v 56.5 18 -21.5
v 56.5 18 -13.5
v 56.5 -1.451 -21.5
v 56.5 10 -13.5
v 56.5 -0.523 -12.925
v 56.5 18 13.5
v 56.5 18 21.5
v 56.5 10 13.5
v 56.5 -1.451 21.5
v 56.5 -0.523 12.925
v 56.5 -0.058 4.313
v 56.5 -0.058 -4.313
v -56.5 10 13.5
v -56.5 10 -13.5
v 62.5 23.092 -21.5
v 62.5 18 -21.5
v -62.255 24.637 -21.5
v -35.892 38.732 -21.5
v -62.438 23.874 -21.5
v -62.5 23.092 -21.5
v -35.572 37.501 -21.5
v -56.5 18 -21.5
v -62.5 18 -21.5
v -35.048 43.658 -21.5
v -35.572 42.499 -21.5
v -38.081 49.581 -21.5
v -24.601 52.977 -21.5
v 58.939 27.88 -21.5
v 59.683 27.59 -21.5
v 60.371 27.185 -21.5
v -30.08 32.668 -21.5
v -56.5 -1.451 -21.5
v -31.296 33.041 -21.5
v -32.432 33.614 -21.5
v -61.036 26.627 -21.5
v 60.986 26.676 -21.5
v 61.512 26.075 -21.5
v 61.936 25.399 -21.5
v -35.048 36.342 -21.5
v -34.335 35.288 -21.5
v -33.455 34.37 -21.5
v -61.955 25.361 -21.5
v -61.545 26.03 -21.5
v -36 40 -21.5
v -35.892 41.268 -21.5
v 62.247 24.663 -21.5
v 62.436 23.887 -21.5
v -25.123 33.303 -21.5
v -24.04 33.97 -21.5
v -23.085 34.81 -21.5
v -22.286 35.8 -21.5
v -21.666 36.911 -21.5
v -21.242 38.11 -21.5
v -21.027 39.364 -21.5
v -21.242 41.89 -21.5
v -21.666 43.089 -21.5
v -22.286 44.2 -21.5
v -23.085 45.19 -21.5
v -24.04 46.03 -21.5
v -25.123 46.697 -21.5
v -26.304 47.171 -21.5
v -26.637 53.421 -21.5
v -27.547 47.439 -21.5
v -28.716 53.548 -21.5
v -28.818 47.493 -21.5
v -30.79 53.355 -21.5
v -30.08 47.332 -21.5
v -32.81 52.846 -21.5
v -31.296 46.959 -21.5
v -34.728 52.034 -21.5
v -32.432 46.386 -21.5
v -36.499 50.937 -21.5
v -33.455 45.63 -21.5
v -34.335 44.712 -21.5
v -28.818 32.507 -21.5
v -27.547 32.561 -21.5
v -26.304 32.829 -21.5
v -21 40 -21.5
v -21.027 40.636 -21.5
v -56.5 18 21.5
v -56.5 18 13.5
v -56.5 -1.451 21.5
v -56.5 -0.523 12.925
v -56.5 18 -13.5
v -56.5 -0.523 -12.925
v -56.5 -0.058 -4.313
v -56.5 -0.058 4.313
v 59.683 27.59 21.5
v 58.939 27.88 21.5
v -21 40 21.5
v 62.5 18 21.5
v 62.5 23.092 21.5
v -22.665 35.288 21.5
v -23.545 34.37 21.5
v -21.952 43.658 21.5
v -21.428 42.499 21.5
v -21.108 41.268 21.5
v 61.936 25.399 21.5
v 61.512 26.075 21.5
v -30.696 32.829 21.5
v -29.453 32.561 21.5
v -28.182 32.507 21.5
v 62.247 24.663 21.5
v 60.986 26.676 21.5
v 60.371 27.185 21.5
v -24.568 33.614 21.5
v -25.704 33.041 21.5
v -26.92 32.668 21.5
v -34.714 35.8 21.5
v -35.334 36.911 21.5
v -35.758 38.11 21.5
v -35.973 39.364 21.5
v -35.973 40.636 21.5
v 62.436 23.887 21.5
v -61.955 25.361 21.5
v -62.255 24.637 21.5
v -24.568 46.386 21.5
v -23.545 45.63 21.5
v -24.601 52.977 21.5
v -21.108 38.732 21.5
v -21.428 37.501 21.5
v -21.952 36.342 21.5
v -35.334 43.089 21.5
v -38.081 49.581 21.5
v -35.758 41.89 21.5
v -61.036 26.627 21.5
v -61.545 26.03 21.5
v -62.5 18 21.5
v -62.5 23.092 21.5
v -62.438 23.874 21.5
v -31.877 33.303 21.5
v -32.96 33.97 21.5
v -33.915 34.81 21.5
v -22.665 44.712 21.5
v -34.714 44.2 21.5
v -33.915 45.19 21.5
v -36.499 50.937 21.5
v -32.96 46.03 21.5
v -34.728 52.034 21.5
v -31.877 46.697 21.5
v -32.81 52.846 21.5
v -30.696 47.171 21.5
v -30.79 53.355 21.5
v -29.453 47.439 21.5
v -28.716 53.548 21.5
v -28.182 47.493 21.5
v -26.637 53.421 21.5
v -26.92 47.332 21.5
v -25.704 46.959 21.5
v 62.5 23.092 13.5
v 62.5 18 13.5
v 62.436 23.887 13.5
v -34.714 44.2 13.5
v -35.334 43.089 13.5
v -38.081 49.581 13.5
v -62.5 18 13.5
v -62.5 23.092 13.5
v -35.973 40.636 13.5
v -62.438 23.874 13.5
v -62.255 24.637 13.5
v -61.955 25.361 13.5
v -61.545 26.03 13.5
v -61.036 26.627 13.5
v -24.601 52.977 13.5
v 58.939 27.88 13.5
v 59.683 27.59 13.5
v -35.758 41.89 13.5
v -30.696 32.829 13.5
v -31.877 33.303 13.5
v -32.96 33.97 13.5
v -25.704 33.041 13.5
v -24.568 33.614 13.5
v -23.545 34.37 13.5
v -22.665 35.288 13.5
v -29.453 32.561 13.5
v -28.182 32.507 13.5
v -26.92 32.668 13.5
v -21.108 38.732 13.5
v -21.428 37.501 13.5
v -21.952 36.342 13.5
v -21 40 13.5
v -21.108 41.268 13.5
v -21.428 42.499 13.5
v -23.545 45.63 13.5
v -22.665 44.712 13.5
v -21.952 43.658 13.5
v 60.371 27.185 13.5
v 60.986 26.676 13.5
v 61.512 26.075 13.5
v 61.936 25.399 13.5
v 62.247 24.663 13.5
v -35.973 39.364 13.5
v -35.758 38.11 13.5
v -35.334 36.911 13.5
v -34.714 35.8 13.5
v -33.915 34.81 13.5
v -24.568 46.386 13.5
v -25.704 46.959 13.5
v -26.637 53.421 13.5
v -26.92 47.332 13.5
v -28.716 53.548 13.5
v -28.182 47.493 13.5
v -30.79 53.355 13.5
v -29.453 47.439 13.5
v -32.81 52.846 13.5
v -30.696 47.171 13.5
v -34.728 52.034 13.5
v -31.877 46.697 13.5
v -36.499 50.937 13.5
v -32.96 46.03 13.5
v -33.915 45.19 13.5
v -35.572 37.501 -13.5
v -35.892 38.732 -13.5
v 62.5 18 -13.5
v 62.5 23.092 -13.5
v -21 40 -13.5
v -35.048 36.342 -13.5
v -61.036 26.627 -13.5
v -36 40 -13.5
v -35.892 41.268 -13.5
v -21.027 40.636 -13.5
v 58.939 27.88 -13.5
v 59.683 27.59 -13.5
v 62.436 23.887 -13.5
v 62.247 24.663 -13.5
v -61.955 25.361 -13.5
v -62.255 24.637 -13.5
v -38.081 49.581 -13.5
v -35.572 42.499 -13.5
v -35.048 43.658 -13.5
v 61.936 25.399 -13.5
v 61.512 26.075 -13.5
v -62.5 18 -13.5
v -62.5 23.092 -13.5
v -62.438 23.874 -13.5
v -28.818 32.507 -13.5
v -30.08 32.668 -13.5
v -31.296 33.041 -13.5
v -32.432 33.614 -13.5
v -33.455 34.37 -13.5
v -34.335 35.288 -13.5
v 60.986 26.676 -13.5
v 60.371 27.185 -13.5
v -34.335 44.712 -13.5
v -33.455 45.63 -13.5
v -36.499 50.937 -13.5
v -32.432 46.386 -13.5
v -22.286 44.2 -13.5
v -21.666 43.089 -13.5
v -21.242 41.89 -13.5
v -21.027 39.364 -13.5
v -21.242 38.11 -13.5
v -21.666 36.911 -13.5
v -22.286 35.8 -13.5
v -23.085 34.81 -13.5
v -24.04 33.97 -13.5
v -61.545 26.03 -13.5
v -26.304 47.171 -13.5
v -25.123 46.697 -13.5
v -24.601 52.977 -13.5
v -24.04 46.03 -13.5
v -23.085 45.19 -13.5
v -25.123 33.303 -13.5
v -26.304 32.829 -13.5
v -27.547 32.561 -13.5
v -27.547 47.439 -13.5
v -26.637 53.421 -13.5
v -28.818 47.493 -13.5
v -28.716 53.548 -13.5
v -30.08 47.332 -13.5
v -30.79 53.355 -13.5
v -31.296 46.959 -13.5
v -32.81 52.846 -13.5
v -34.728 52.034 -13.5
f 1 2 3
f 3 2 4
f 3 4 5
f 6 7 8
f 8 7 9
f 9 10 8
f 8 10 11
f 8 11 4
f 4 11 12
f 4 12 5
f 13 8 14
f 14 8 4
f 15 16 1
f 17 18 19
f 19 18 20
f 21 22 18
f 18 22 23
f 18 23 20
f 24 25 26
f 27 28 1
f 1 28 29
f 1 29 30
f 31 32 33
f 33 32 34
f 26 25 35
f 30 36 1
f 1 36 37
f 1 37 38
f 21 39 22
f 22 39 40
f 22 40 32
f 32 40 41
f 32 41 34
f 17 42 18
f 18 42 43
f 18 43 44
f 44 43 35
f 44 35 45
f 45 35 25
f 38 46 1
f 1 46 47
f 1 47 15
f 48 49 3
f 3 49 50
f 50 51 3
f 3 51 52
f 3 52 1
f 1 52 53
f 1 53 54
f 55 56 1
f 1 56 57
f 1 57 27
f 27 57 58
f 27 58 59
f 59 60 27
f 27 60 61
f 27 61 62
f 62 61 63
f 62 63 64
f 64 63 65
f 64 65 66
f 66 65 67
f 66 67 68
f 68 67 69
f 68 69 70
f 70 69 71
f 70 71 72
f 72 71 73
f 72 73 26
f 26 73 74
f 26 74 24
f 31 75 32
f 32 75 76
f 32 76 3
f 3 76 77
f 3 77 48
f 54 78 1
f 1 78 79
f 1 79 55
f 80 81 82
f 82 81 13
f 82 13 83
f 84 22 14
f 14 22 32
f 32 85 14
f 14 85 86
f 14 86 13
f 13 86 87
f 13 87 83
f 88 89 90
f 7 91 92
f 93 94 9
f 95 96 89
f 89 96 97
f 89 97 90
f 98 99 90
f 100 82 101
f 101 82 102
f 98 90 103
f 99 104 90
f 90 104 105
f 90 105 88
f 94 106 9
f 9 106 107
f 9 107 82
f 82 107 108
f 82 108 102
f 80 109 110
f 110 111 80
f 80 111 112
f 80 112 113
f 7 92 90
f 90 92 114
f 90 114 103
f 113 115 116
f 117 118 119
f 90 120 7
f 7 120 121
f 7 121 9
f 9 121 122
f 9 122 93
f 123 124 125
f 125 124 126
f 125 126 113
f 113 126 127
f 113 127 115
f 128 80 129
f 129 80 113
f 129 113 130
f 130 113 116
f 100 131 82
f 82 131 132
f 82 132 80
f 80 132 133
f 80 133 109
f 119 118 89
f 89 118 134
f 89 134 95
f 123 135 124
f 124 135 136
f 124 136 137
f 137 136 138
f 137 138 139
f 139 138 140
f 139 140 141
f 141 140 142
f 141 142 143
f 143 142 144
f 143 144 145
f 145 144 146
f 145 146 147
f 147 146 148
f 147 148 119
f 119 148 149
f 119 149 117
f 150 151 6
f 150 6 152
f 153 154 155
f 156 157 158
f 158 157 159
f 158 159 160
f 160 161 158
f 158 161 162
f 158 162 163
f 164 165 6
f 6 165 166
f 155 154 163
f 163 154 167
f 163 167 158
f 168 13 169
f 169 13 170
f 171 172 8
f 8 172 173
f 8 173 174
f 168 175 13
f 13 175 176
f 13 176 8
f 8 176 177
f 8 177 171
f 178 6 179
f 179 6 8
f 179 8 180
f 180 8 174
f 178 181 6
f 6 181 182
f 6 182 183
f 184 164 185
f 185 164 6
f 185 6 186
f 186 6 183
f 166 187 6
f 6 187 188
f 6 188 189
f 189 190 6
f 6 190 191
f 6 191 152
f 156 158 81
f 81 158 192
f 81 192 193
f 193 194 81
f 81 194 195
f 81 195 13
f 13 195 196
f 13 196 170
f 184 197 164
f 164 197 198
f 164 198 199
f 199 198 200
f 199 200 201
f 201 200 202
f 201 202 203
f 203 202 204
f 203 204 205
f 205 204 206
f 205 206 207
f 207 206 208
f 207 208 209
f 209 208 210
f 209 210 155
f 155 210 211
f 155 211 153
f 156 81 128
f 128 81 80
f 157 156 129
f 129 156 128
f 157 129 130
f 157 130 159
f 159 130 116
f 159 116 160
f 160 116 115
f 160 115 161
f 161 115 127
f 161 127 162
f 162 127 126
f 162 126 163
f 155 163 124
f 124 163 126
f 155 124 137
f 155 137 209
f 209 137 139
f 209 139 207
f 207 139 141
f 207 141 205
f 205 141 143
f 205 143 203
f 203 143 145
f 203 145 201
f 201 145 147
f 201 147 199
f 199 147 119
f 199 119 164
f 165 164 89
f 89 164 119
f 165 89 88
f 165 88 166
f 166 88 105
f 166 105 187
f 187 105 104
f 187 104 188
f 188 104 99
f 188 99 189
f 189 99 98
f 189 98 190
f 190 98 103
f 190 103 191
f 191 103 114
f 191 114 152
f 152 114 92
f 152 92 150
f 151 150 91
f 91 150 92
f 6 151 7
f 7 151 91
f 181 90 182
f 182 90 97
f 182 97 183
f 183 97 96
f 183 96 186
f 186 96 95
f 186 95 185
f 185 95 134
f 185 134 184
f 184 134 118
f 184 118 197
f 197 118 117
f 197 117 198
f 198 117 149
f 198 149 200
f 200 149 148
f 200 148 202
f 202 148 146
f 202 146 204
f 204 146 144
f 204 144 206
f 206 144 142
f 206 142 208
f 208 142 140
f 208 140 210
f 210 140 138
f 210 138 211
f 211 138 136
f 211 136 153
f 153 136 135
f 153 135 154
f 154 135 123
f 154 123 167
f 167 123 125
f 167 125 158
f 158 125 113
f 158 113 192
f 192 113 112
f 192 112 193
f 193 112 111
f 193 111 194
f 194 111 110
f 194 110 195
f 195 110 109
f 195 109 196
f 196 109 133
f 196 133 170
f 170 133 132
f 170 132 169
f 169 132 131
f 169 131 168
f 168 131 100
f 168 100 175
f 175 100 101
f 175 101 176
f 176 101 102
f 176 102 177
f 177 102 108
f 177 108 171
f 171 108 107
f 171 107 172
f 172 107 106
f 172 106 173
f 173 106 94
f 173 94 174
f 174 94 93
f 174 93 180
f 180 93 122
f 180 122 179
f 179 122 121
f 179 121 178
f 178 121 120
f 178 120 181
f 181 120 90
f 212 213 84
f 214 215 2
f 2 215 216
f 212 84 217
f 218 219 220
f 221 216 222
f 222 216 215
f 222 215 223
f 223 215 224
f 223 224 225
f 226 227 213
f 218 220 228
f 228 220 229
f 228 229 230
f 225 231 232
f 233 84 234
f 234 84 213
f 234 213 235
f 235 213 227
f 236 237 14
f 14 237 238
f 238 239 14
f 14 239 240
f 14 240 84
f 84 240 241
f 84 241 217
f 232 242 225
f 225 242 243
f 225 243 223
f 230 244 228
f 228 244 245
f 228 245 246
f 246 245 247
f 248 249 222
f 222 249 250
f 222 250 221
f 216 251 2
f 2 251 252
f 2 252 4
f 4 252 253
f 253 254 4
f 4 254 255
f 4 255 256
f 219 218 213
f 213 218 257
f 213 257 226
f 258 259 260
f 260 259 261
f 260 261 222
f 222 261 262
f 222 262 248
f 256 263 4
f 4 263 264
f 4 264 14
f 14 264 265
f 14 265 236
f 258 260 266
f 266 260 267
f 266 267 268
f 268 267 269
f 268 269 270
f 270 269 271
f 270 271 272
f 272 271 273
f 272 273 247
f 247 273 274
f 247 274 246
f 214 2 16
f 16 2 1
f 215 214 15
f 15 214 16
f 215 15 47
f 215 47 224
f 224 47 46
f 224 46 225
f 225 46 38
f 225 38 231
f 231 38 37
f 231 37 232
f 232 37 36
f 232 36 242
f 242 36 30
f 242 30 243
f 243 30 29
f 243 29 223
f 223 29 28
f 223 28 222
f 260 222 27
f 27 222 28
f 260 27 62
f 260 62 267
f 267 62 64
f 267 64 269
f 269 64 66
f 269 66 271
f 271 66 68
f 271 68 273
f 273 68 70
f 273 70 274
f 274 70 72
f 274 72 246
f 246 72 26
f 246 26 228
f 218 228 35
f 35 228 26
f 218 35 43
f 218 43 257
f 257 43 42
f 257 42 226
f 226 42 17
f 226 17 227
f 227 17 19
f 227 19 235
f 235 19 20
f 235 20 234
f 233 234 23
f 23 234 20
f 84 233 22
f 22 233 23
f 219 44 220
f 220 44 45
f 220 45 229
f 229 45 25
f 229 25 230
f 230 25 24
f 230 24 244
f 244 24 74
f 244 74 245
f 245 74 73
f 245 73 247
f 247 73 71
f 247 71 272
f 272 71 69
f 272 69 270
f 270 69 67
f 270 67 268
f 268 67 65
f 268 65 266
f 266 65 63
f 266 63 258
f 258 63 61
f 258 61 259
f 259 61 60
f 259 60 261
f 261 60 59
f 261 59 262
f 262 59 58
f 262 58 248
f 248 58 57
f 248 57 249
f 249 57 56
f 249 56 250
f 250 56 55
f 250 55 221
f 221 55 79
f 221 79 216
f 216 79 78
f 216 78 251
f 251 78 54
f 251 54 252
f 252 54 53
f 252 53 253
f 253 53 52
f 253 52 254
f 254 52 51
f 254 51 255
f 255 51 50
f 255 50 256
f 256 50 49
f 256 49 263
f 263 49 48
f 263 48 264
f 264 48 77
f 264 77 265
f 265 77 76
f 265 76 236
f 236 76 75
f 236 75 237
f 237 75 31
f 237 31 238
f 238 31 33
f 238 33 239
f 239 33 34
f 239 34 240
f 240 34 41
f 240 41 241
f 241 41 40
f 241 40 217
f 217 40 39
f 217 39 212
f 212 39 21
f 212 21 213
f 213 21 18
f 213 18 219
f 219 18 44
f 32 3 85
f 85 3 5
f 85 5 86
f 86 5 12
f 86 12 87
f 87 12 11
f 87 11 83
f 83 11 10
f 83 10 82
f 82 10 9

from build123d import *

# Parameters (mm, degrees)
SKETCH3_W           = 113
SKETCH3_H           = 43
BOSS_EXTRUDE1_DEPTH = 10
SKETCH5_R           = 7.5
BOSS_EXTRUDE3_DEPTH = 8
CUT_EXTRUDE5_DEPTH  = 133.252986734


with BuildPart() as part:
    # Sketch3 → Boss-Extrude1 (new, symmetric)
    with BuildSketch(Plane(origin=(0, 0, 0), x_dir=(1, 0, 0), z_dir=(0, 1, 0))):
        Rectangle(SKETCH3_W, SKETCH3_H)
    extrude(amount=BOSS_EXTRUDE1_DEPTH, both=True)

    # Sketch5 → Boss-Extrude3 (add)
    with BuildSketch(Plane.XY.offset(21.5)):
        with BuildLine():
            Line((56.5, 0), (-56.5, 0))
            Line((-56.5, 0), (-56.5, 18))
            Line((-56.5, 18), (-62.5, 18))
            Line((-62.5, 18), (-62.5, 23.091525958))
            ThreePointArc((-62.5, 23.091525958), (-62.119397663, 25.00494312), (-61.035533906, 26.627059864))
            Line((-61.035533906, 26.627059864), (-38.081296885, 49.581296885))
            ThreePointArc((-38.081296885, 49.581296885), (-31.81001697, 53.139493432), (-24.601457677, 52.977051582))
            Line((-24.601457677, 52.977051582), (58.938576503, 27.880105878))
            ThreePointArc((58.938576503, 27.880105878), (61.512037046, 26.075409123), (62.5, 23.091525958))
            Line((62.5, 23.091525958), (62.5, 18))
            Line((62.5, 18), (56.5, 18))
            Line((56.5, 18), (56.5, 0))
        make_face()
        with Locations((-28.5, 40)):
            Circle(SKETCH5_R, mode=Mode.SUBTRACT)
    boss_extrude3 = extrude(amount=-BOSS_EXTRUDE3_DEPTH)

    # Mirror1: Boss-Extrude3 across plane
    add(boss_extrude3.mirror(Plane.XY))

    # Sketch4 → Cut-Extrude5 (cut, through all)
    with BuildSketch(Plane(origin=(56.5, 0, 0), x_dir=(0, 0, -1), z_dir=(1, 0, 0))):
        with BuildLine():
            ThreePointArc((21.5, -1.451111641), (0, 0), (-21.5, -1.451111641))
            Line((-21.5, -1.451111641), (-21.5, -10))
            Line((-21.5, -10), (21.5, -10))
            Line((21.5, -10), (21.5, -1.451111641))
        make_face()
        with BuildLine():
            Line((-21.5, -10), (-21.5, -1.451111641))
            ThreePointArc((-21.5, -1.451111641), (-105.261578936, -280.498962651), (160, -160))
            ThreePointArc((160, -160), (120.498962651, -54.738421064), (21.5, -1.451111641))
            Line((21.5, -1.451111641), (21.5, -10))
            Line((21.5, -10), (-21.5, -10))
        make_face()
    extrude(amount=-CUT_EXTRUDE5_DEPTH, mode=Mode.SUBTRACT)


solid = part.part
